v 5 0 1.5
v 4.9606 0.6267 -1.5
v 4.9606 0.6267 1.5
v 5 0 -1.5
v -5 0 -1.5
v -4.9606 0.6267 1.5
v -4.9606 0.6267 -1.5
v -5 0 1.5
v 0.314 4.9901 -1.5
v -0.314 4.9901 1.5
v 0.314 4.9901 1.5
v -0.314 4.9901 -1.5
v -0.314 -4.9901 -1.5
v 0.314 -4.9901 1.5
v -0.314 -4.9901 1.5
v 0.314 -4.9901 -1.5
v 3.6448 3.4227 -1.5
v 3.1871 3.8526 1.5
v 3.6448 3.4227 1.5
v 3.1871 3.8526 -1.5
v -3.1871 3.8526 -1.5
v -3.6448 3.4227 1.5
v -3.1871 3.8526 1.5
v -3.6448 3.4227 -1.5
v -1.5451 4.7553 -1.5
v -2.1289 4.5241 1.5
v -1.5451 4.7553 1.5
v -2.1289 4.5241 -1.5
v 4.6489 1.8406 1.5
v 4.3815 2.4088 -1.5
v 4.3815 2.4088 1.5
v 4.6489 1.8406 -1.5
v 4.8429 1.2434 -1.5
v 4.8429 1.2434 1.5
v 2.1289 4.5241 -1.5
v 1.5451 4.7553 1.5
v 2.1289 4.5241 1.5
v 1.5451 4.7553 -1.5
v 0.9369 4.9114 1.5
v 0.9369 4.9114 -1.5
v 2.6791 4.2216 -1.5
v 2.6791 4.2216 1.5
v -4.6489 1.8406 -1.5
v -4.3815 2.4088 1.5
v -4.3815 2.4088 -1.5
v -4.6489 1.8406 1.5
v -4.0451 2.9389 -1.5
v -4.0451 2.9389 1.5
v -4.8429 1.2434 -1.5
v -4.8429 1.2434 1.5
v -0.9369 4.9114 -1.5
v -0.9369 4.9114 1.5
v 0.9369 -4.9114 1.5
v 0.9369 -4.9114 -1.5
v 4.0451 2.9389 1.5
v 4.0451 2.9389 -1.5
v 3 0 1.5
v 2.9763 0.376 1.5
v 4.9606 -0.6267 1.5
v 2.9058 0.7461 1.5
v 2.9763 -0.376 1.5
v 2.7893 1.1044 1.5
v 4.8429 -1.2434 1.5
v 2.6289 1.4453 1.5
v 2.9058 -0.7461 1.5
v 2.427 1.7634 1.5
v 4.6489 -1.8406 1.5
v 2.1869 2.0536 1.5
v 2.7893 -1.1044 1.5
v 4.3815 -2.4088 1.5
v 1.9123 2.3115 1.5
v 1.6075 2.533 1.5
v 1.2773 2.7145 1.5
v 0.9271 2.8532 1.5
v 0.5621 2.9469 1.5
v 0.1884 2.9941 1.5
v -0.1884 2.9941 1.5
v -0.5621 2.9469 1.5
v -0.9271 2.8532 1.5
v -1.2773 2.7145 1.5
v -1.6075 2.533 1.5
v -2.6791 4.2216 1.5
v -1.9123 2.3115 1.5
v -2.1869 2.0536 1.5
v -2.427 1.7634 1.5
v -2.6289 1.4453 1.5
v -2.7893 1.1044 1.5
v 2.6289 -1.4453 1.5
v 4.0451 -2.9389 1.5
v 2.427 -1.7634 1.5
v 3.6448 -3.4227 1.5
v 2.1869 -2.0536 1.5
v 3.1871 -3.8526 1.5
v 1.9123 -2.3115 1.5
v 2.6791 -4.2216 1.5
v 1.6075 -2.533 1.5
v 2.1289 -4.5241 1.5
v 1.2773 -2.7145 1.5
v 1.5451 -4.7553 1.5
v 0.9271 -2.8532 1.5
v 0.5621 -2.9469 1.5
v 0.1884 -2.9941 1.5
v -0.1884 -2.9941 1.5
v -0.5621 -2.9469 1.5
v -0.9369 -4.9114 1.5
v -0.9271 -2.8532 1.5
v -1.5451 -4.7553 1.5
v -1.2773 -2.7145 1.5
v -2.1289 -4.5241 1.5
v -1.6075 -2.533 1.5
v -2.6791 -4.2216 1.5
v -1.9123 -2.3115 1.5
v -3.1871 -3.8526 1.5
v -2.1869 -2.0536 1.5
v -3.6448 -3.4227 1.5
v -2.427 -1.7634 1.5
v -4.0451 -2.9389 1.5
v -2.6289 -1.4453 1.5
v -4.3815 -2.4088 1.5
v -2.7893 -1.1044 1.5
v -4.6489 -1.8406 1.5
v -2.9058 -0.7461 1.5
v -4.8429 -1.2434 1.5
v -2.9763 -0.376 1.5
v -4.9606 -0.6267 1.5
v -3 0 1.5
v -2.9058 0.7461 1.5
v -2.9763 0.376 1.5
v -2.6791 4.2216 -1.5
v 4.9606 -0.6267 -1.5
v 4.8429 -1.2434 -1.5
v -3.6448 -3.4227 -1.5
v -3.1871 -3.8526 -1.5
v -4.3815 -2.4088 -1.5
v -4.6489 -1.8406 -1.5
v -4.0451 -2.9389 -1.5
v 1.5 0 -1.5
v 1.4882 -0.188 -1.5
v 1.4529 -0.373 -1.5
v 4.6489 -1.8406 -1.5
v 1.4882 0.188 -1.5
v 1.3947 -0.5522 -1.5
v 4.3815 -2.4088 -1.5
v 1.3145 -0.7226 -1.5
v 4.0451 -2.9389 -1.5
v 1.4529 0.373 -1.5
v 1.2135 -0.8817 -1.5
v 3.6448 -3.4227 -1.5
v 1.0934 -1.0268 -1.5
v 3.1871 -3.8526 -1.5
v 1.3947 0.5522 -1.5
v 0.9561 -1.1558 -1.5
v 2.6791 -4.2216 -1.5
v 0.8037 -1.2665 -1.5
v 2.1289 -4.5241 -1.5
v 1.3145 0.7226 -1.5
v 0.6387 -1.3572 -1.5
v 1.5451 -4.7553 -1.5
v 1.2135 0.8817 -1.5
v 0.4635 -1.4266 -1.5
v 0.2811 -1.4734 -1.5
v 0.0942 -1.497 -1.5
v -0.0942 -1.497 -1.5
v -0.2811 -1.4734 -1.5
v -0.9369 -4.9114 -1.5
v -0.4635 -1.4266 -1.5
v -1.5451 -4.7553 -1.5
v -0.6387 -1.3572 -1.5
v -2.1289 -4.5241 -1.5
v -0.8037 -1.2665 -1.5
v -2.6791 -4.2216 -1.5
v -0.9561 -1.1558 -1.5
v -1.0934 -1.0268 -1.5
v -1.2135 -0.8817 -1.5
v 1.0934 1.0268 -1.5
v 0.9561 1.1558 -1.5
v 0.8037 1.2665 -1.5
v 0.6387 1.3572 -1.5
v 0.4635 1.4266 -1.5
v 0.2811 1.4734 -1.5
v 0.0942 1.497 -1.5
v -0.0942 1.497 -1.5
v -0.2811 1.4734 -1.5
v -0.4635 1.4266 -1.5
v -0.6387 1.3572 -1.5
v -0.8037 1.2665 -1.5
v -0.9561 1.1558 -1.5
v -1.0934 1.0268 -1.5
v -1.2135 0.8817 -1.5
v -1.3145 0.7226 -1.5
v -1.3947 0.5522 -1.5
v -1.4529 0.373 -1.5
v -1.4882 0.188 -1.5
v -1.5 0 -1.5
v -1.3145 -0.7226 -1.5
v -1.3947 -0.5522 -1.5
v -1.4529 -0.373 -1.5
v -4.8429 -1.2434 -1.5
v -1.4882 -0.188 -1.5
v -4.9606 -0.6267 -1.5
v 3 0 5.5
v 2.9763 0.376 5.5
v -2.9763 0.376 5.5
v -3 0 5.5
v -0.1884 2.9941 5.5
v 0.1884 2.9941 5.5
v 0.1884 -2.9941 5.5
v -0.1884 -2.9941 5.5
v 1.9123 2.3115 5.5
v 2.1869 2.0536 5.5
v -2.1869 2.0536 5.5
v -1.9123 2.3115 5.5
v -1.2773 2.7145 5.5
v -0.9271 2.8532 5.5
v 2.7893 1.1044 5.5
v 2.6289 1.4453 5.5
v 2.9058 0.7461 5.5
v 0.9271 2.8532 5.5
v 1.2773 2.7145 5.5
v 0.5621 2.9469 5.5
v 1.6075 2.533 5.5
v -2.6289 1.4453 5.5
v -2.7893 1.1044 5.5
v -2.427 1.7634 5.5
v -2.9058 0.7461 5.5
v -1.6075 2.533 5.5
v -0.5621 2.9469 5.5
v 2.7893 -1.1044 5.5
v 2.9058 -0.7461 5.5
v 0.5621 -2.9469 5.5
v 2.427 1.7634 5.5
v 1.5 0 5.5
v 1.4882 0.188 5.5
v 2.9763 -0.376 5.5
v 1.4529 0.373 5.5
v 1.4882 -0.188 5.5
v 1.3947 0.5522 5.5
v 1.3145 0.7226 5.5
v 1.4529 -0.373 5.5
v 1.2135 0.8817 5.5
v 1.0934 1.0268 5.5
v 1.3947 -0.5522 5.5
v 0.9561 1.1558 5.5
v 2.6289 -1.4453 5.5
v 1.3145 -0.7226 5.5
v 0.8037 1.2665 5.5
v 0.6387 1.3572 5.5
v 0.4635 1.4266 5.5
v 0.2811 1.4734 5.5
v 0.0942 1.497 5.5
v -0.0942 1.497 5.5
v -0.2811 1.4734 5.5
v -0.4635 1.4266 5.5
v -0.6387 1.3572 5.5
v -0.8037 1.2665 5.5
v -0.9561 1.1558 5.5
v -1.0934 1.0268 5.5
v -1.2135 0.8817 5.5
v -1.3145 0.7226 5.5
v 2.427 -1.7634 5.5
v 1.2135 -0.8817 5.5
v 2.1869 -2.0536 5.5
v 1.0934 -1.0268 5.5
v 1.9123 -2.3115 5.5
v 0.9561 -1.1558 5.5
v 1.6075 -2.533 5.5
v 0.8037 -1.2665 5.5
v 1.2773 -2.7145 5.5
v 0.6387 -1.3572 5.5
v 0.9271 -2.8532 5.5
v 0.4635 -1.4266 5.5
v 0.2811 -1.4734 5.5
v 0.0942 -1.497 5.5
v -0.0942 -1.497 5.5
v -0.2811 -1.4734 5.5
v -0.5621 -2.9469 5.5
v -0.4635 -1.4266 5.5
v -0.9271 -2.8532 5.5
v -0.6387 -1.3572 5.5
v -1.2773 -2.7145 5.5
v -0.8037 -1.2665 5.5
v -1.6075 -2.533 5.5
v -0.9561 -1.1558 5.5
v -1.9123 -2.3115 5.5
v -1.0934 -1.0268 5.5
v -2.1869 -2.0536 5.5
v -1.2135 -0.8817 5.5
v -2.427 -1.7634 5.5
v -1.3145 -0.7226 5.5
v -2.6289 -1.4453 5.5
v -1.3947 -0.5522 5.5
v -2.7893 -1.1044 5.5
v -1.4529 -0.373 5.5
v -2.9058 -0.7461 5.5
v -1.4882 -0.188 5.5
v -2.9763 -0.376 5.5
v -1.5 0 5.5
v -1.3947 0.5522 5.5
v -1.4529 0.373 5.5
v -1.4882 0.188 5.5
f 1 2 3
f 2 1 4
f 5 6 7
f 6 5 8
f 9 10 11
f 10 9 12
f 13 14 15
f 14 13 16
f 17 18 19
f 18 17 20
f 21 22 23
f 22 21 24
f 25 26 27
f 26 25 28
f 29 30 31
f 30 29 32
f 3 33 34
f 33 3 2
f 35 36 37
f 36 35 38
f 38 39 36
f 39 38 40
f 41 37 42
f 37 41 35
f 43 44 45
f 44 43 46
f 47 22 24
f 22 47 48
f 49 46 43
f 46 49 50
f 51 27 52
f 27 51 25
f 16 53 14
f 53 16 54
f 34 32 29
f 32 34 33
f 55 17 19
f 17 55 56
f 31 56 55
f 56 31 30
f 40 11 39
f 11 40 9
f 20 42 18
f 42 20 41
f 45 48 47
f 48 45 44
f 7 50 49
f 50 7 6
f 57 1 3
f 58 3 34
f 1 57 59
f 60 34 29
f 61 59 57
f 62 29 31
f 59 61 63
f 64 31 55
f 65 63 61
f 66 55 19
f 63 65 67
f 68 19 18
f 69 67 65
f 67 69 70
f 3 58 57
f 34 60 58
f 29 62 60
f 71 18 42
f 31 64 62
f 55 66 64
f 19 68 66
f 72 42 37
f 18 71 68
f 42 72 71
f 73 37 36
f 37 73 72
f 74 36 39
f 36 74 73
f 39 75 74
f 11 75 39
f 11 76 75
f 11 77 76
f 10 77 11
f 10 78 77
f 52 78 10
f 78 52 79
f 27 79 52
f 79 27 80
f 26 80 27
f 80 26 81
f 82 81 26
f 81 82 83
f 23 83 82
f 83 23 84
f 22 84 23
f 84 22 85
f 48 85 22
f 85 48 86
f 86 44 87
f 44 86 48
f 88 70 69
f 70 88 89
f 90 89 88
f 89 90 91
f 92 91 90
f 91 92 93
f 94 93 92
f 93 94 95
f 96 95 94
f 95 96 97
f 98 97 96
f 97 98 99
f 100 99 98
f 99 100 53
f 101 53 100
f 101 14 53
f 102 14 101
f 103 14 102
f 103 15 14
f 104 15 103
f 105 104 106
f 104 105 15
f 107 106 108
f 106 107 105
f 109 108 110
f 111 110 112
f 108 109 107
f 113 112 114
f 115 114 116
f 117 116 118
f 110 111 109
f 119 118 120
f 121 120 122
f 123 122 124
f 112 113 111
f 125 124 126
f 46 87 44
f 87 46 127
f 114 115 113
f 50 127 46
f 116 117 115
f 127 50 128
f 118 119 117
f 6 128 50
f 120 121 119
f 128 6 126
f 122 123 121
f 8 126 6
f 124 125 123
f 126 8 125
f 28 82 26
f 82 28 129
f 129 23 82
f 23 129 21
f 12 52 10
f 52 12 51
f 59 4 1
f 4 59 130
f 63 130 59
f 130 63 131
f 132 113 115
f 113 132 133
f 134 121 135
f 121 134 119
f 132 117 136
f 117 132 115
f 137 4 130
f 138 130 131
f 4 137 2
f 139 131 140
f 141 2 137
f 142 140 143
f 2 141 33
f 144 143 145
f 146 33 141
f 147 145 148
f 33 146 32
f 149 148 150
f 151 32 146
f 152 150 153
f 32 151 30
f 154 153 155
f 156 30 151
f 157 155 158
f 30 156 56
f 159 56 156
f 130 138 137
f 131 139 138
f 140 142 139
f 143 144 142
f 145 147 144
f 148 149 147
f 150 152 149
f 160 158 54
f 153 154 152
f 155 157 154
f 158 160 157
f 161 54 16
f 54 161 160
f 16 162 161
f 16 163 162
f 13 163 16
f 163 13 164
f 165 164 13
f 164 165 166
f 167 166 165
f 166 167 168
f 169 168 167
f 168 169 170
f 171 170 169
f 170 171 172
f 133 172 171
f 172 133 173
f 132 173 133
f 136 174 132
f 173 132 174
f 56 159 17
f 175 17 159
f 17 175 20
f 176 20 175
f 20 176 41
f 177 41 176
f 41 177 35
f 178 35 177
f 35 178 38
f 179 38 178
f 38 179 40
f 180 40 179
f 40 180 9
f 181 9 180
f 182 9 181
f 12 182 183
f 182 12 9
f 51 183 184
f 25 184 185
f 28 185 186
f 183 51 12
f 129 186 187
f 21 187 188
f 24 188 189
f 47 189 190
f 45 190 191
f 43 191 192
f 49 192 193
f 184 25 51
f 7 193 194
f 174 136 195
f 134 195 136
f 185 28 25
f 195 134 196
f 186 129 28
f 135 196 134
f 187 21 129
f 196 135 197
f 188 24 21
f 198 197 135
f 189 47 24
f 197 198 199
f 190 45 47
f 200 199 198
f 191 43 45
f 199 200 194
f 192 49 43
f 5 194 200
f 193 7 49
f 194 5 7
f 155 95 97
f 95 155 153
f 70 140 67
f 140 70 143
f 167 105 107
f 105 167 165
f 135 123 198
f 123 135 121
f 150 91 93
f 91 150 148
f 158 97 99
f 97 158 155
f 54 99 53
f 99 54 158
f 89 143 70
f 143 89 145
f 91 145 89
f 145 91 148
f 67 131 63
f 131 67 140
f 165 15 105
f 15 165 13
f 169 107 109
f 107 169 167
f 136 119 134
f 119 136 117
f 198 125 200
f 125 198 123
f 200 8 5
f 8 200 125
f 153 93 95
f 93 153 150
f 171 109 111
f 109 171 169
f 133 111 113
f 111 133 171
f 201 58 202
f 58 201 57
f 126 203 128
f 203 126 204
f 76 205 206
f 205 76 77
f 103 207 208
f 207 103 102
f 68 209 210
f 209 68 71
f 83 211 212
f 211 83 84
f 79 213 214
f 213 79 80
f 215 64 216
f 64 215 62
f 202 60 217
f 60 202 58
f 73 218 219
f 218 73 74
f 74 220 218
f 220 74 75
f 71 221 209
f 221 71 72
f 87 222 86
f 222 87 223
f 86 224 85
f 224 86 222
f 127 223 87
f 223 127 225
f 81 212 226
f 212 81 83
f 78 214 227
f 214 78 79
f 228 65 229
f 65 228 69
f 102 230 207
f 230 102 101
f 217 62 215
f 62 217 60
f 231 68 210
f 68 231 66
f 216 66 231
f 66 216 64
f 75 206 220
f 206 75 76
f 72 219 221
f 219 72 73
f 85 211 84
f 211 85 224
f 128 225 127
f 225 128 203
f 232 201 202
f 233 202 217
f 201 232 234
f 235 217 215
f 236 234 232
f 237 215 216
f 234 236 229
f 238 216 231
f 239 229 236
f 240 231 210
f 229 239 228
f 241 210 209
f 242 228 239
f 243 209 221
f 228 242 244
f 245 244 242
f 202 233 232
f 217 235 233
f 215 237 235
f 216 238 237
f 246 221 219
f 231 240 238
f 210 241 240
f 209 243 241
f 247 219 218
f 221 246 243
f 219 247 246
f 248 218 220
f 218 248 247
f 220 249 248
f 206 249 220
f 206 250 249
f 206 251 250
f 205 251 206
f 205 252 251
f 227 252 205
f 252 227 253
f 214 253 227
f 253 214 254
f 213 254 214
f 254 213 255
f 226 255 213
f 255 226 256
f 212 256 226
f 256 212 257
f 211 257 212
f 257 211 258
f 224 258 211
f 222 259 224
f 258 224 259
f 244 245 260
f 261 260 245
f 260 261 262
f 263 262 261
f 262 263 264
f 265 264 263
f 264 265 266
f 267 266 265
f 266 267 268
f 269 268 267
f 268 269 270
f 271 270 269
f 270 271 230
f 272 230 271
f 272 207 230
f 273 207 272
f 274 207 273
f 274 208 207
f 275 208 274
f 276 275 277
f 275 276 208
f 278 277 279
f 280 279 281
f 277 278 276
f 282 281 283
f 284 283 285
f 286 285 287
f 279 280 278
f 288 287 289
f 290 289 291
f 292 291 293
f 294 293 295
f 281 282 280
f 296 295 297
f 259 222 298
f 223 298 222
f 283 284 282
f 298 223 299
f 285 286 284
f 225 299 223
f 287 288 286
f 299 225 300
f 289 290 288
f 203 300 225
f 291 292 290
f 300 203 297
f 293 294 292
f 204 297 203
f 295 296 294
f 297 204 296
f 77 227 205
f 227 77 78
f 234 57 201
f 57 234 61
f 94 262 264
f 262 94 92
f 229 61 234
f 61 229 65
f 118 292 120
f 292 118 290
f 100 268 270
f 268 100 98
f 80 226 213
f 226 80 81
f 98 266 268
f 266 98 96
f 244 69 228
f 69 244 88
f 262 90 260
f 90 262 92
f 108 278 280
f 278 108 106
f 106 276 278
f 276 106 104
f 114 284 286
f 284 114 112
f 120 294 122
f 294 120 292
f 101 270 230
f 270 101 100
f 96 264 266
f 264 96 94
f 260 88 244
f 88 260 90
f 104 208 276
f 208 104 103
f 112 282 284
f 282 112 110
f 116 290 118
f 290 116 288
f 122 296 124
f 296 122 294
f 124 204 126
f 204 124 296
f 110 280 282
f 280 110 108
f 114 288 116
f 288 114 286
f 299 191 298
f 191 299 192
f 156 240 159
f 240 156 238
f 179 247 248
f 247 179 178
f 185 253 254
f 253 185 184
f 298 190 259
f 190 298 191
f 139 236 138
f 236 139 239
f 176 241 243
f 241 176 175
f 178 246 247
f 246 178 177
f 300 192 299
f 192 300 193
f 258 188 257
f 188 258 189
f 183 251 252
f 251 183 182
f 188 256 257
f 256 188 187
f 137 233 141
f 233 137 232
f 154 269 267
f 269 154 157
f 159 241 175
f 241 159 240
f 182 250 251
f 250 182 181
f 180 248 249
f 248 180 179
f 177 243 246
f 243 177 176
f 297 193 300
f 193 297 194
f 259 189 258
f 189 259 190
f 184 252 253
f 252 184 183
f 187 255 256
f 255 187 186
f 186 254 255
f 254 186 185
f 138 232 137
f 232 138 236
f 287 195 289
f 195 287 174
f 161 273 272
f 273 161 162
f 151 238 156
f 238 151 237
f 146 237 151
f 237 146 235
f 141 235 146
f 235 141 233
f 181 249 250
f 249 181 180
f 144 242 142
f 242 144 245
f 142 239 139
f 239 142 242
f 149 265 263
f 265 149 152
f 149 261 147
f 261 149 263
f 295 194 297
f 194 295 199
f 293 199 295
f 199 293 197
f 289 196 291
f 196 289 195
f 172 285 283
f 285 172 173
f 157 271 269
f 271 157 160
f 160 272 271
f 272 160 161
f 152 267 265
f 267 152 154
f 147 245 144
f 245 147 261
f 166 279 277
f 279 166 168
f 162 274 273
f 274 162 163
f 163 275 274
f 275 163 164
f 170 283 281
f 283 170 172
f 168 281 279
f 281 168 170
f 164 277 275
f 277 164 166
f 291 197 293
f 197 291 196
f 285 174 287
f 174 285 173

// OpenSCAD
$fn = 50;


difference() {
	union() {
		translate(v = [0, 0, -1.5000000000]) {
			rotate(a = [0, 0, 0]) {
				cylinder(h = 3, r = 5.0000000000);
			}
		}
		translate(v = [0, 0, -1.5000000000]) {
			rotate(a = [0, 0, 0]) {
				cylinder(h = 7, r = 3.0000000000);
			}
		}
	}
	union() {
		translate(v = [0, 0, -125.0000000000]) {
			rotate(a = [0, 0, 0]) {
				cylinder(h = 250, r = 1.5000000000);
			}
		}
	}
}
